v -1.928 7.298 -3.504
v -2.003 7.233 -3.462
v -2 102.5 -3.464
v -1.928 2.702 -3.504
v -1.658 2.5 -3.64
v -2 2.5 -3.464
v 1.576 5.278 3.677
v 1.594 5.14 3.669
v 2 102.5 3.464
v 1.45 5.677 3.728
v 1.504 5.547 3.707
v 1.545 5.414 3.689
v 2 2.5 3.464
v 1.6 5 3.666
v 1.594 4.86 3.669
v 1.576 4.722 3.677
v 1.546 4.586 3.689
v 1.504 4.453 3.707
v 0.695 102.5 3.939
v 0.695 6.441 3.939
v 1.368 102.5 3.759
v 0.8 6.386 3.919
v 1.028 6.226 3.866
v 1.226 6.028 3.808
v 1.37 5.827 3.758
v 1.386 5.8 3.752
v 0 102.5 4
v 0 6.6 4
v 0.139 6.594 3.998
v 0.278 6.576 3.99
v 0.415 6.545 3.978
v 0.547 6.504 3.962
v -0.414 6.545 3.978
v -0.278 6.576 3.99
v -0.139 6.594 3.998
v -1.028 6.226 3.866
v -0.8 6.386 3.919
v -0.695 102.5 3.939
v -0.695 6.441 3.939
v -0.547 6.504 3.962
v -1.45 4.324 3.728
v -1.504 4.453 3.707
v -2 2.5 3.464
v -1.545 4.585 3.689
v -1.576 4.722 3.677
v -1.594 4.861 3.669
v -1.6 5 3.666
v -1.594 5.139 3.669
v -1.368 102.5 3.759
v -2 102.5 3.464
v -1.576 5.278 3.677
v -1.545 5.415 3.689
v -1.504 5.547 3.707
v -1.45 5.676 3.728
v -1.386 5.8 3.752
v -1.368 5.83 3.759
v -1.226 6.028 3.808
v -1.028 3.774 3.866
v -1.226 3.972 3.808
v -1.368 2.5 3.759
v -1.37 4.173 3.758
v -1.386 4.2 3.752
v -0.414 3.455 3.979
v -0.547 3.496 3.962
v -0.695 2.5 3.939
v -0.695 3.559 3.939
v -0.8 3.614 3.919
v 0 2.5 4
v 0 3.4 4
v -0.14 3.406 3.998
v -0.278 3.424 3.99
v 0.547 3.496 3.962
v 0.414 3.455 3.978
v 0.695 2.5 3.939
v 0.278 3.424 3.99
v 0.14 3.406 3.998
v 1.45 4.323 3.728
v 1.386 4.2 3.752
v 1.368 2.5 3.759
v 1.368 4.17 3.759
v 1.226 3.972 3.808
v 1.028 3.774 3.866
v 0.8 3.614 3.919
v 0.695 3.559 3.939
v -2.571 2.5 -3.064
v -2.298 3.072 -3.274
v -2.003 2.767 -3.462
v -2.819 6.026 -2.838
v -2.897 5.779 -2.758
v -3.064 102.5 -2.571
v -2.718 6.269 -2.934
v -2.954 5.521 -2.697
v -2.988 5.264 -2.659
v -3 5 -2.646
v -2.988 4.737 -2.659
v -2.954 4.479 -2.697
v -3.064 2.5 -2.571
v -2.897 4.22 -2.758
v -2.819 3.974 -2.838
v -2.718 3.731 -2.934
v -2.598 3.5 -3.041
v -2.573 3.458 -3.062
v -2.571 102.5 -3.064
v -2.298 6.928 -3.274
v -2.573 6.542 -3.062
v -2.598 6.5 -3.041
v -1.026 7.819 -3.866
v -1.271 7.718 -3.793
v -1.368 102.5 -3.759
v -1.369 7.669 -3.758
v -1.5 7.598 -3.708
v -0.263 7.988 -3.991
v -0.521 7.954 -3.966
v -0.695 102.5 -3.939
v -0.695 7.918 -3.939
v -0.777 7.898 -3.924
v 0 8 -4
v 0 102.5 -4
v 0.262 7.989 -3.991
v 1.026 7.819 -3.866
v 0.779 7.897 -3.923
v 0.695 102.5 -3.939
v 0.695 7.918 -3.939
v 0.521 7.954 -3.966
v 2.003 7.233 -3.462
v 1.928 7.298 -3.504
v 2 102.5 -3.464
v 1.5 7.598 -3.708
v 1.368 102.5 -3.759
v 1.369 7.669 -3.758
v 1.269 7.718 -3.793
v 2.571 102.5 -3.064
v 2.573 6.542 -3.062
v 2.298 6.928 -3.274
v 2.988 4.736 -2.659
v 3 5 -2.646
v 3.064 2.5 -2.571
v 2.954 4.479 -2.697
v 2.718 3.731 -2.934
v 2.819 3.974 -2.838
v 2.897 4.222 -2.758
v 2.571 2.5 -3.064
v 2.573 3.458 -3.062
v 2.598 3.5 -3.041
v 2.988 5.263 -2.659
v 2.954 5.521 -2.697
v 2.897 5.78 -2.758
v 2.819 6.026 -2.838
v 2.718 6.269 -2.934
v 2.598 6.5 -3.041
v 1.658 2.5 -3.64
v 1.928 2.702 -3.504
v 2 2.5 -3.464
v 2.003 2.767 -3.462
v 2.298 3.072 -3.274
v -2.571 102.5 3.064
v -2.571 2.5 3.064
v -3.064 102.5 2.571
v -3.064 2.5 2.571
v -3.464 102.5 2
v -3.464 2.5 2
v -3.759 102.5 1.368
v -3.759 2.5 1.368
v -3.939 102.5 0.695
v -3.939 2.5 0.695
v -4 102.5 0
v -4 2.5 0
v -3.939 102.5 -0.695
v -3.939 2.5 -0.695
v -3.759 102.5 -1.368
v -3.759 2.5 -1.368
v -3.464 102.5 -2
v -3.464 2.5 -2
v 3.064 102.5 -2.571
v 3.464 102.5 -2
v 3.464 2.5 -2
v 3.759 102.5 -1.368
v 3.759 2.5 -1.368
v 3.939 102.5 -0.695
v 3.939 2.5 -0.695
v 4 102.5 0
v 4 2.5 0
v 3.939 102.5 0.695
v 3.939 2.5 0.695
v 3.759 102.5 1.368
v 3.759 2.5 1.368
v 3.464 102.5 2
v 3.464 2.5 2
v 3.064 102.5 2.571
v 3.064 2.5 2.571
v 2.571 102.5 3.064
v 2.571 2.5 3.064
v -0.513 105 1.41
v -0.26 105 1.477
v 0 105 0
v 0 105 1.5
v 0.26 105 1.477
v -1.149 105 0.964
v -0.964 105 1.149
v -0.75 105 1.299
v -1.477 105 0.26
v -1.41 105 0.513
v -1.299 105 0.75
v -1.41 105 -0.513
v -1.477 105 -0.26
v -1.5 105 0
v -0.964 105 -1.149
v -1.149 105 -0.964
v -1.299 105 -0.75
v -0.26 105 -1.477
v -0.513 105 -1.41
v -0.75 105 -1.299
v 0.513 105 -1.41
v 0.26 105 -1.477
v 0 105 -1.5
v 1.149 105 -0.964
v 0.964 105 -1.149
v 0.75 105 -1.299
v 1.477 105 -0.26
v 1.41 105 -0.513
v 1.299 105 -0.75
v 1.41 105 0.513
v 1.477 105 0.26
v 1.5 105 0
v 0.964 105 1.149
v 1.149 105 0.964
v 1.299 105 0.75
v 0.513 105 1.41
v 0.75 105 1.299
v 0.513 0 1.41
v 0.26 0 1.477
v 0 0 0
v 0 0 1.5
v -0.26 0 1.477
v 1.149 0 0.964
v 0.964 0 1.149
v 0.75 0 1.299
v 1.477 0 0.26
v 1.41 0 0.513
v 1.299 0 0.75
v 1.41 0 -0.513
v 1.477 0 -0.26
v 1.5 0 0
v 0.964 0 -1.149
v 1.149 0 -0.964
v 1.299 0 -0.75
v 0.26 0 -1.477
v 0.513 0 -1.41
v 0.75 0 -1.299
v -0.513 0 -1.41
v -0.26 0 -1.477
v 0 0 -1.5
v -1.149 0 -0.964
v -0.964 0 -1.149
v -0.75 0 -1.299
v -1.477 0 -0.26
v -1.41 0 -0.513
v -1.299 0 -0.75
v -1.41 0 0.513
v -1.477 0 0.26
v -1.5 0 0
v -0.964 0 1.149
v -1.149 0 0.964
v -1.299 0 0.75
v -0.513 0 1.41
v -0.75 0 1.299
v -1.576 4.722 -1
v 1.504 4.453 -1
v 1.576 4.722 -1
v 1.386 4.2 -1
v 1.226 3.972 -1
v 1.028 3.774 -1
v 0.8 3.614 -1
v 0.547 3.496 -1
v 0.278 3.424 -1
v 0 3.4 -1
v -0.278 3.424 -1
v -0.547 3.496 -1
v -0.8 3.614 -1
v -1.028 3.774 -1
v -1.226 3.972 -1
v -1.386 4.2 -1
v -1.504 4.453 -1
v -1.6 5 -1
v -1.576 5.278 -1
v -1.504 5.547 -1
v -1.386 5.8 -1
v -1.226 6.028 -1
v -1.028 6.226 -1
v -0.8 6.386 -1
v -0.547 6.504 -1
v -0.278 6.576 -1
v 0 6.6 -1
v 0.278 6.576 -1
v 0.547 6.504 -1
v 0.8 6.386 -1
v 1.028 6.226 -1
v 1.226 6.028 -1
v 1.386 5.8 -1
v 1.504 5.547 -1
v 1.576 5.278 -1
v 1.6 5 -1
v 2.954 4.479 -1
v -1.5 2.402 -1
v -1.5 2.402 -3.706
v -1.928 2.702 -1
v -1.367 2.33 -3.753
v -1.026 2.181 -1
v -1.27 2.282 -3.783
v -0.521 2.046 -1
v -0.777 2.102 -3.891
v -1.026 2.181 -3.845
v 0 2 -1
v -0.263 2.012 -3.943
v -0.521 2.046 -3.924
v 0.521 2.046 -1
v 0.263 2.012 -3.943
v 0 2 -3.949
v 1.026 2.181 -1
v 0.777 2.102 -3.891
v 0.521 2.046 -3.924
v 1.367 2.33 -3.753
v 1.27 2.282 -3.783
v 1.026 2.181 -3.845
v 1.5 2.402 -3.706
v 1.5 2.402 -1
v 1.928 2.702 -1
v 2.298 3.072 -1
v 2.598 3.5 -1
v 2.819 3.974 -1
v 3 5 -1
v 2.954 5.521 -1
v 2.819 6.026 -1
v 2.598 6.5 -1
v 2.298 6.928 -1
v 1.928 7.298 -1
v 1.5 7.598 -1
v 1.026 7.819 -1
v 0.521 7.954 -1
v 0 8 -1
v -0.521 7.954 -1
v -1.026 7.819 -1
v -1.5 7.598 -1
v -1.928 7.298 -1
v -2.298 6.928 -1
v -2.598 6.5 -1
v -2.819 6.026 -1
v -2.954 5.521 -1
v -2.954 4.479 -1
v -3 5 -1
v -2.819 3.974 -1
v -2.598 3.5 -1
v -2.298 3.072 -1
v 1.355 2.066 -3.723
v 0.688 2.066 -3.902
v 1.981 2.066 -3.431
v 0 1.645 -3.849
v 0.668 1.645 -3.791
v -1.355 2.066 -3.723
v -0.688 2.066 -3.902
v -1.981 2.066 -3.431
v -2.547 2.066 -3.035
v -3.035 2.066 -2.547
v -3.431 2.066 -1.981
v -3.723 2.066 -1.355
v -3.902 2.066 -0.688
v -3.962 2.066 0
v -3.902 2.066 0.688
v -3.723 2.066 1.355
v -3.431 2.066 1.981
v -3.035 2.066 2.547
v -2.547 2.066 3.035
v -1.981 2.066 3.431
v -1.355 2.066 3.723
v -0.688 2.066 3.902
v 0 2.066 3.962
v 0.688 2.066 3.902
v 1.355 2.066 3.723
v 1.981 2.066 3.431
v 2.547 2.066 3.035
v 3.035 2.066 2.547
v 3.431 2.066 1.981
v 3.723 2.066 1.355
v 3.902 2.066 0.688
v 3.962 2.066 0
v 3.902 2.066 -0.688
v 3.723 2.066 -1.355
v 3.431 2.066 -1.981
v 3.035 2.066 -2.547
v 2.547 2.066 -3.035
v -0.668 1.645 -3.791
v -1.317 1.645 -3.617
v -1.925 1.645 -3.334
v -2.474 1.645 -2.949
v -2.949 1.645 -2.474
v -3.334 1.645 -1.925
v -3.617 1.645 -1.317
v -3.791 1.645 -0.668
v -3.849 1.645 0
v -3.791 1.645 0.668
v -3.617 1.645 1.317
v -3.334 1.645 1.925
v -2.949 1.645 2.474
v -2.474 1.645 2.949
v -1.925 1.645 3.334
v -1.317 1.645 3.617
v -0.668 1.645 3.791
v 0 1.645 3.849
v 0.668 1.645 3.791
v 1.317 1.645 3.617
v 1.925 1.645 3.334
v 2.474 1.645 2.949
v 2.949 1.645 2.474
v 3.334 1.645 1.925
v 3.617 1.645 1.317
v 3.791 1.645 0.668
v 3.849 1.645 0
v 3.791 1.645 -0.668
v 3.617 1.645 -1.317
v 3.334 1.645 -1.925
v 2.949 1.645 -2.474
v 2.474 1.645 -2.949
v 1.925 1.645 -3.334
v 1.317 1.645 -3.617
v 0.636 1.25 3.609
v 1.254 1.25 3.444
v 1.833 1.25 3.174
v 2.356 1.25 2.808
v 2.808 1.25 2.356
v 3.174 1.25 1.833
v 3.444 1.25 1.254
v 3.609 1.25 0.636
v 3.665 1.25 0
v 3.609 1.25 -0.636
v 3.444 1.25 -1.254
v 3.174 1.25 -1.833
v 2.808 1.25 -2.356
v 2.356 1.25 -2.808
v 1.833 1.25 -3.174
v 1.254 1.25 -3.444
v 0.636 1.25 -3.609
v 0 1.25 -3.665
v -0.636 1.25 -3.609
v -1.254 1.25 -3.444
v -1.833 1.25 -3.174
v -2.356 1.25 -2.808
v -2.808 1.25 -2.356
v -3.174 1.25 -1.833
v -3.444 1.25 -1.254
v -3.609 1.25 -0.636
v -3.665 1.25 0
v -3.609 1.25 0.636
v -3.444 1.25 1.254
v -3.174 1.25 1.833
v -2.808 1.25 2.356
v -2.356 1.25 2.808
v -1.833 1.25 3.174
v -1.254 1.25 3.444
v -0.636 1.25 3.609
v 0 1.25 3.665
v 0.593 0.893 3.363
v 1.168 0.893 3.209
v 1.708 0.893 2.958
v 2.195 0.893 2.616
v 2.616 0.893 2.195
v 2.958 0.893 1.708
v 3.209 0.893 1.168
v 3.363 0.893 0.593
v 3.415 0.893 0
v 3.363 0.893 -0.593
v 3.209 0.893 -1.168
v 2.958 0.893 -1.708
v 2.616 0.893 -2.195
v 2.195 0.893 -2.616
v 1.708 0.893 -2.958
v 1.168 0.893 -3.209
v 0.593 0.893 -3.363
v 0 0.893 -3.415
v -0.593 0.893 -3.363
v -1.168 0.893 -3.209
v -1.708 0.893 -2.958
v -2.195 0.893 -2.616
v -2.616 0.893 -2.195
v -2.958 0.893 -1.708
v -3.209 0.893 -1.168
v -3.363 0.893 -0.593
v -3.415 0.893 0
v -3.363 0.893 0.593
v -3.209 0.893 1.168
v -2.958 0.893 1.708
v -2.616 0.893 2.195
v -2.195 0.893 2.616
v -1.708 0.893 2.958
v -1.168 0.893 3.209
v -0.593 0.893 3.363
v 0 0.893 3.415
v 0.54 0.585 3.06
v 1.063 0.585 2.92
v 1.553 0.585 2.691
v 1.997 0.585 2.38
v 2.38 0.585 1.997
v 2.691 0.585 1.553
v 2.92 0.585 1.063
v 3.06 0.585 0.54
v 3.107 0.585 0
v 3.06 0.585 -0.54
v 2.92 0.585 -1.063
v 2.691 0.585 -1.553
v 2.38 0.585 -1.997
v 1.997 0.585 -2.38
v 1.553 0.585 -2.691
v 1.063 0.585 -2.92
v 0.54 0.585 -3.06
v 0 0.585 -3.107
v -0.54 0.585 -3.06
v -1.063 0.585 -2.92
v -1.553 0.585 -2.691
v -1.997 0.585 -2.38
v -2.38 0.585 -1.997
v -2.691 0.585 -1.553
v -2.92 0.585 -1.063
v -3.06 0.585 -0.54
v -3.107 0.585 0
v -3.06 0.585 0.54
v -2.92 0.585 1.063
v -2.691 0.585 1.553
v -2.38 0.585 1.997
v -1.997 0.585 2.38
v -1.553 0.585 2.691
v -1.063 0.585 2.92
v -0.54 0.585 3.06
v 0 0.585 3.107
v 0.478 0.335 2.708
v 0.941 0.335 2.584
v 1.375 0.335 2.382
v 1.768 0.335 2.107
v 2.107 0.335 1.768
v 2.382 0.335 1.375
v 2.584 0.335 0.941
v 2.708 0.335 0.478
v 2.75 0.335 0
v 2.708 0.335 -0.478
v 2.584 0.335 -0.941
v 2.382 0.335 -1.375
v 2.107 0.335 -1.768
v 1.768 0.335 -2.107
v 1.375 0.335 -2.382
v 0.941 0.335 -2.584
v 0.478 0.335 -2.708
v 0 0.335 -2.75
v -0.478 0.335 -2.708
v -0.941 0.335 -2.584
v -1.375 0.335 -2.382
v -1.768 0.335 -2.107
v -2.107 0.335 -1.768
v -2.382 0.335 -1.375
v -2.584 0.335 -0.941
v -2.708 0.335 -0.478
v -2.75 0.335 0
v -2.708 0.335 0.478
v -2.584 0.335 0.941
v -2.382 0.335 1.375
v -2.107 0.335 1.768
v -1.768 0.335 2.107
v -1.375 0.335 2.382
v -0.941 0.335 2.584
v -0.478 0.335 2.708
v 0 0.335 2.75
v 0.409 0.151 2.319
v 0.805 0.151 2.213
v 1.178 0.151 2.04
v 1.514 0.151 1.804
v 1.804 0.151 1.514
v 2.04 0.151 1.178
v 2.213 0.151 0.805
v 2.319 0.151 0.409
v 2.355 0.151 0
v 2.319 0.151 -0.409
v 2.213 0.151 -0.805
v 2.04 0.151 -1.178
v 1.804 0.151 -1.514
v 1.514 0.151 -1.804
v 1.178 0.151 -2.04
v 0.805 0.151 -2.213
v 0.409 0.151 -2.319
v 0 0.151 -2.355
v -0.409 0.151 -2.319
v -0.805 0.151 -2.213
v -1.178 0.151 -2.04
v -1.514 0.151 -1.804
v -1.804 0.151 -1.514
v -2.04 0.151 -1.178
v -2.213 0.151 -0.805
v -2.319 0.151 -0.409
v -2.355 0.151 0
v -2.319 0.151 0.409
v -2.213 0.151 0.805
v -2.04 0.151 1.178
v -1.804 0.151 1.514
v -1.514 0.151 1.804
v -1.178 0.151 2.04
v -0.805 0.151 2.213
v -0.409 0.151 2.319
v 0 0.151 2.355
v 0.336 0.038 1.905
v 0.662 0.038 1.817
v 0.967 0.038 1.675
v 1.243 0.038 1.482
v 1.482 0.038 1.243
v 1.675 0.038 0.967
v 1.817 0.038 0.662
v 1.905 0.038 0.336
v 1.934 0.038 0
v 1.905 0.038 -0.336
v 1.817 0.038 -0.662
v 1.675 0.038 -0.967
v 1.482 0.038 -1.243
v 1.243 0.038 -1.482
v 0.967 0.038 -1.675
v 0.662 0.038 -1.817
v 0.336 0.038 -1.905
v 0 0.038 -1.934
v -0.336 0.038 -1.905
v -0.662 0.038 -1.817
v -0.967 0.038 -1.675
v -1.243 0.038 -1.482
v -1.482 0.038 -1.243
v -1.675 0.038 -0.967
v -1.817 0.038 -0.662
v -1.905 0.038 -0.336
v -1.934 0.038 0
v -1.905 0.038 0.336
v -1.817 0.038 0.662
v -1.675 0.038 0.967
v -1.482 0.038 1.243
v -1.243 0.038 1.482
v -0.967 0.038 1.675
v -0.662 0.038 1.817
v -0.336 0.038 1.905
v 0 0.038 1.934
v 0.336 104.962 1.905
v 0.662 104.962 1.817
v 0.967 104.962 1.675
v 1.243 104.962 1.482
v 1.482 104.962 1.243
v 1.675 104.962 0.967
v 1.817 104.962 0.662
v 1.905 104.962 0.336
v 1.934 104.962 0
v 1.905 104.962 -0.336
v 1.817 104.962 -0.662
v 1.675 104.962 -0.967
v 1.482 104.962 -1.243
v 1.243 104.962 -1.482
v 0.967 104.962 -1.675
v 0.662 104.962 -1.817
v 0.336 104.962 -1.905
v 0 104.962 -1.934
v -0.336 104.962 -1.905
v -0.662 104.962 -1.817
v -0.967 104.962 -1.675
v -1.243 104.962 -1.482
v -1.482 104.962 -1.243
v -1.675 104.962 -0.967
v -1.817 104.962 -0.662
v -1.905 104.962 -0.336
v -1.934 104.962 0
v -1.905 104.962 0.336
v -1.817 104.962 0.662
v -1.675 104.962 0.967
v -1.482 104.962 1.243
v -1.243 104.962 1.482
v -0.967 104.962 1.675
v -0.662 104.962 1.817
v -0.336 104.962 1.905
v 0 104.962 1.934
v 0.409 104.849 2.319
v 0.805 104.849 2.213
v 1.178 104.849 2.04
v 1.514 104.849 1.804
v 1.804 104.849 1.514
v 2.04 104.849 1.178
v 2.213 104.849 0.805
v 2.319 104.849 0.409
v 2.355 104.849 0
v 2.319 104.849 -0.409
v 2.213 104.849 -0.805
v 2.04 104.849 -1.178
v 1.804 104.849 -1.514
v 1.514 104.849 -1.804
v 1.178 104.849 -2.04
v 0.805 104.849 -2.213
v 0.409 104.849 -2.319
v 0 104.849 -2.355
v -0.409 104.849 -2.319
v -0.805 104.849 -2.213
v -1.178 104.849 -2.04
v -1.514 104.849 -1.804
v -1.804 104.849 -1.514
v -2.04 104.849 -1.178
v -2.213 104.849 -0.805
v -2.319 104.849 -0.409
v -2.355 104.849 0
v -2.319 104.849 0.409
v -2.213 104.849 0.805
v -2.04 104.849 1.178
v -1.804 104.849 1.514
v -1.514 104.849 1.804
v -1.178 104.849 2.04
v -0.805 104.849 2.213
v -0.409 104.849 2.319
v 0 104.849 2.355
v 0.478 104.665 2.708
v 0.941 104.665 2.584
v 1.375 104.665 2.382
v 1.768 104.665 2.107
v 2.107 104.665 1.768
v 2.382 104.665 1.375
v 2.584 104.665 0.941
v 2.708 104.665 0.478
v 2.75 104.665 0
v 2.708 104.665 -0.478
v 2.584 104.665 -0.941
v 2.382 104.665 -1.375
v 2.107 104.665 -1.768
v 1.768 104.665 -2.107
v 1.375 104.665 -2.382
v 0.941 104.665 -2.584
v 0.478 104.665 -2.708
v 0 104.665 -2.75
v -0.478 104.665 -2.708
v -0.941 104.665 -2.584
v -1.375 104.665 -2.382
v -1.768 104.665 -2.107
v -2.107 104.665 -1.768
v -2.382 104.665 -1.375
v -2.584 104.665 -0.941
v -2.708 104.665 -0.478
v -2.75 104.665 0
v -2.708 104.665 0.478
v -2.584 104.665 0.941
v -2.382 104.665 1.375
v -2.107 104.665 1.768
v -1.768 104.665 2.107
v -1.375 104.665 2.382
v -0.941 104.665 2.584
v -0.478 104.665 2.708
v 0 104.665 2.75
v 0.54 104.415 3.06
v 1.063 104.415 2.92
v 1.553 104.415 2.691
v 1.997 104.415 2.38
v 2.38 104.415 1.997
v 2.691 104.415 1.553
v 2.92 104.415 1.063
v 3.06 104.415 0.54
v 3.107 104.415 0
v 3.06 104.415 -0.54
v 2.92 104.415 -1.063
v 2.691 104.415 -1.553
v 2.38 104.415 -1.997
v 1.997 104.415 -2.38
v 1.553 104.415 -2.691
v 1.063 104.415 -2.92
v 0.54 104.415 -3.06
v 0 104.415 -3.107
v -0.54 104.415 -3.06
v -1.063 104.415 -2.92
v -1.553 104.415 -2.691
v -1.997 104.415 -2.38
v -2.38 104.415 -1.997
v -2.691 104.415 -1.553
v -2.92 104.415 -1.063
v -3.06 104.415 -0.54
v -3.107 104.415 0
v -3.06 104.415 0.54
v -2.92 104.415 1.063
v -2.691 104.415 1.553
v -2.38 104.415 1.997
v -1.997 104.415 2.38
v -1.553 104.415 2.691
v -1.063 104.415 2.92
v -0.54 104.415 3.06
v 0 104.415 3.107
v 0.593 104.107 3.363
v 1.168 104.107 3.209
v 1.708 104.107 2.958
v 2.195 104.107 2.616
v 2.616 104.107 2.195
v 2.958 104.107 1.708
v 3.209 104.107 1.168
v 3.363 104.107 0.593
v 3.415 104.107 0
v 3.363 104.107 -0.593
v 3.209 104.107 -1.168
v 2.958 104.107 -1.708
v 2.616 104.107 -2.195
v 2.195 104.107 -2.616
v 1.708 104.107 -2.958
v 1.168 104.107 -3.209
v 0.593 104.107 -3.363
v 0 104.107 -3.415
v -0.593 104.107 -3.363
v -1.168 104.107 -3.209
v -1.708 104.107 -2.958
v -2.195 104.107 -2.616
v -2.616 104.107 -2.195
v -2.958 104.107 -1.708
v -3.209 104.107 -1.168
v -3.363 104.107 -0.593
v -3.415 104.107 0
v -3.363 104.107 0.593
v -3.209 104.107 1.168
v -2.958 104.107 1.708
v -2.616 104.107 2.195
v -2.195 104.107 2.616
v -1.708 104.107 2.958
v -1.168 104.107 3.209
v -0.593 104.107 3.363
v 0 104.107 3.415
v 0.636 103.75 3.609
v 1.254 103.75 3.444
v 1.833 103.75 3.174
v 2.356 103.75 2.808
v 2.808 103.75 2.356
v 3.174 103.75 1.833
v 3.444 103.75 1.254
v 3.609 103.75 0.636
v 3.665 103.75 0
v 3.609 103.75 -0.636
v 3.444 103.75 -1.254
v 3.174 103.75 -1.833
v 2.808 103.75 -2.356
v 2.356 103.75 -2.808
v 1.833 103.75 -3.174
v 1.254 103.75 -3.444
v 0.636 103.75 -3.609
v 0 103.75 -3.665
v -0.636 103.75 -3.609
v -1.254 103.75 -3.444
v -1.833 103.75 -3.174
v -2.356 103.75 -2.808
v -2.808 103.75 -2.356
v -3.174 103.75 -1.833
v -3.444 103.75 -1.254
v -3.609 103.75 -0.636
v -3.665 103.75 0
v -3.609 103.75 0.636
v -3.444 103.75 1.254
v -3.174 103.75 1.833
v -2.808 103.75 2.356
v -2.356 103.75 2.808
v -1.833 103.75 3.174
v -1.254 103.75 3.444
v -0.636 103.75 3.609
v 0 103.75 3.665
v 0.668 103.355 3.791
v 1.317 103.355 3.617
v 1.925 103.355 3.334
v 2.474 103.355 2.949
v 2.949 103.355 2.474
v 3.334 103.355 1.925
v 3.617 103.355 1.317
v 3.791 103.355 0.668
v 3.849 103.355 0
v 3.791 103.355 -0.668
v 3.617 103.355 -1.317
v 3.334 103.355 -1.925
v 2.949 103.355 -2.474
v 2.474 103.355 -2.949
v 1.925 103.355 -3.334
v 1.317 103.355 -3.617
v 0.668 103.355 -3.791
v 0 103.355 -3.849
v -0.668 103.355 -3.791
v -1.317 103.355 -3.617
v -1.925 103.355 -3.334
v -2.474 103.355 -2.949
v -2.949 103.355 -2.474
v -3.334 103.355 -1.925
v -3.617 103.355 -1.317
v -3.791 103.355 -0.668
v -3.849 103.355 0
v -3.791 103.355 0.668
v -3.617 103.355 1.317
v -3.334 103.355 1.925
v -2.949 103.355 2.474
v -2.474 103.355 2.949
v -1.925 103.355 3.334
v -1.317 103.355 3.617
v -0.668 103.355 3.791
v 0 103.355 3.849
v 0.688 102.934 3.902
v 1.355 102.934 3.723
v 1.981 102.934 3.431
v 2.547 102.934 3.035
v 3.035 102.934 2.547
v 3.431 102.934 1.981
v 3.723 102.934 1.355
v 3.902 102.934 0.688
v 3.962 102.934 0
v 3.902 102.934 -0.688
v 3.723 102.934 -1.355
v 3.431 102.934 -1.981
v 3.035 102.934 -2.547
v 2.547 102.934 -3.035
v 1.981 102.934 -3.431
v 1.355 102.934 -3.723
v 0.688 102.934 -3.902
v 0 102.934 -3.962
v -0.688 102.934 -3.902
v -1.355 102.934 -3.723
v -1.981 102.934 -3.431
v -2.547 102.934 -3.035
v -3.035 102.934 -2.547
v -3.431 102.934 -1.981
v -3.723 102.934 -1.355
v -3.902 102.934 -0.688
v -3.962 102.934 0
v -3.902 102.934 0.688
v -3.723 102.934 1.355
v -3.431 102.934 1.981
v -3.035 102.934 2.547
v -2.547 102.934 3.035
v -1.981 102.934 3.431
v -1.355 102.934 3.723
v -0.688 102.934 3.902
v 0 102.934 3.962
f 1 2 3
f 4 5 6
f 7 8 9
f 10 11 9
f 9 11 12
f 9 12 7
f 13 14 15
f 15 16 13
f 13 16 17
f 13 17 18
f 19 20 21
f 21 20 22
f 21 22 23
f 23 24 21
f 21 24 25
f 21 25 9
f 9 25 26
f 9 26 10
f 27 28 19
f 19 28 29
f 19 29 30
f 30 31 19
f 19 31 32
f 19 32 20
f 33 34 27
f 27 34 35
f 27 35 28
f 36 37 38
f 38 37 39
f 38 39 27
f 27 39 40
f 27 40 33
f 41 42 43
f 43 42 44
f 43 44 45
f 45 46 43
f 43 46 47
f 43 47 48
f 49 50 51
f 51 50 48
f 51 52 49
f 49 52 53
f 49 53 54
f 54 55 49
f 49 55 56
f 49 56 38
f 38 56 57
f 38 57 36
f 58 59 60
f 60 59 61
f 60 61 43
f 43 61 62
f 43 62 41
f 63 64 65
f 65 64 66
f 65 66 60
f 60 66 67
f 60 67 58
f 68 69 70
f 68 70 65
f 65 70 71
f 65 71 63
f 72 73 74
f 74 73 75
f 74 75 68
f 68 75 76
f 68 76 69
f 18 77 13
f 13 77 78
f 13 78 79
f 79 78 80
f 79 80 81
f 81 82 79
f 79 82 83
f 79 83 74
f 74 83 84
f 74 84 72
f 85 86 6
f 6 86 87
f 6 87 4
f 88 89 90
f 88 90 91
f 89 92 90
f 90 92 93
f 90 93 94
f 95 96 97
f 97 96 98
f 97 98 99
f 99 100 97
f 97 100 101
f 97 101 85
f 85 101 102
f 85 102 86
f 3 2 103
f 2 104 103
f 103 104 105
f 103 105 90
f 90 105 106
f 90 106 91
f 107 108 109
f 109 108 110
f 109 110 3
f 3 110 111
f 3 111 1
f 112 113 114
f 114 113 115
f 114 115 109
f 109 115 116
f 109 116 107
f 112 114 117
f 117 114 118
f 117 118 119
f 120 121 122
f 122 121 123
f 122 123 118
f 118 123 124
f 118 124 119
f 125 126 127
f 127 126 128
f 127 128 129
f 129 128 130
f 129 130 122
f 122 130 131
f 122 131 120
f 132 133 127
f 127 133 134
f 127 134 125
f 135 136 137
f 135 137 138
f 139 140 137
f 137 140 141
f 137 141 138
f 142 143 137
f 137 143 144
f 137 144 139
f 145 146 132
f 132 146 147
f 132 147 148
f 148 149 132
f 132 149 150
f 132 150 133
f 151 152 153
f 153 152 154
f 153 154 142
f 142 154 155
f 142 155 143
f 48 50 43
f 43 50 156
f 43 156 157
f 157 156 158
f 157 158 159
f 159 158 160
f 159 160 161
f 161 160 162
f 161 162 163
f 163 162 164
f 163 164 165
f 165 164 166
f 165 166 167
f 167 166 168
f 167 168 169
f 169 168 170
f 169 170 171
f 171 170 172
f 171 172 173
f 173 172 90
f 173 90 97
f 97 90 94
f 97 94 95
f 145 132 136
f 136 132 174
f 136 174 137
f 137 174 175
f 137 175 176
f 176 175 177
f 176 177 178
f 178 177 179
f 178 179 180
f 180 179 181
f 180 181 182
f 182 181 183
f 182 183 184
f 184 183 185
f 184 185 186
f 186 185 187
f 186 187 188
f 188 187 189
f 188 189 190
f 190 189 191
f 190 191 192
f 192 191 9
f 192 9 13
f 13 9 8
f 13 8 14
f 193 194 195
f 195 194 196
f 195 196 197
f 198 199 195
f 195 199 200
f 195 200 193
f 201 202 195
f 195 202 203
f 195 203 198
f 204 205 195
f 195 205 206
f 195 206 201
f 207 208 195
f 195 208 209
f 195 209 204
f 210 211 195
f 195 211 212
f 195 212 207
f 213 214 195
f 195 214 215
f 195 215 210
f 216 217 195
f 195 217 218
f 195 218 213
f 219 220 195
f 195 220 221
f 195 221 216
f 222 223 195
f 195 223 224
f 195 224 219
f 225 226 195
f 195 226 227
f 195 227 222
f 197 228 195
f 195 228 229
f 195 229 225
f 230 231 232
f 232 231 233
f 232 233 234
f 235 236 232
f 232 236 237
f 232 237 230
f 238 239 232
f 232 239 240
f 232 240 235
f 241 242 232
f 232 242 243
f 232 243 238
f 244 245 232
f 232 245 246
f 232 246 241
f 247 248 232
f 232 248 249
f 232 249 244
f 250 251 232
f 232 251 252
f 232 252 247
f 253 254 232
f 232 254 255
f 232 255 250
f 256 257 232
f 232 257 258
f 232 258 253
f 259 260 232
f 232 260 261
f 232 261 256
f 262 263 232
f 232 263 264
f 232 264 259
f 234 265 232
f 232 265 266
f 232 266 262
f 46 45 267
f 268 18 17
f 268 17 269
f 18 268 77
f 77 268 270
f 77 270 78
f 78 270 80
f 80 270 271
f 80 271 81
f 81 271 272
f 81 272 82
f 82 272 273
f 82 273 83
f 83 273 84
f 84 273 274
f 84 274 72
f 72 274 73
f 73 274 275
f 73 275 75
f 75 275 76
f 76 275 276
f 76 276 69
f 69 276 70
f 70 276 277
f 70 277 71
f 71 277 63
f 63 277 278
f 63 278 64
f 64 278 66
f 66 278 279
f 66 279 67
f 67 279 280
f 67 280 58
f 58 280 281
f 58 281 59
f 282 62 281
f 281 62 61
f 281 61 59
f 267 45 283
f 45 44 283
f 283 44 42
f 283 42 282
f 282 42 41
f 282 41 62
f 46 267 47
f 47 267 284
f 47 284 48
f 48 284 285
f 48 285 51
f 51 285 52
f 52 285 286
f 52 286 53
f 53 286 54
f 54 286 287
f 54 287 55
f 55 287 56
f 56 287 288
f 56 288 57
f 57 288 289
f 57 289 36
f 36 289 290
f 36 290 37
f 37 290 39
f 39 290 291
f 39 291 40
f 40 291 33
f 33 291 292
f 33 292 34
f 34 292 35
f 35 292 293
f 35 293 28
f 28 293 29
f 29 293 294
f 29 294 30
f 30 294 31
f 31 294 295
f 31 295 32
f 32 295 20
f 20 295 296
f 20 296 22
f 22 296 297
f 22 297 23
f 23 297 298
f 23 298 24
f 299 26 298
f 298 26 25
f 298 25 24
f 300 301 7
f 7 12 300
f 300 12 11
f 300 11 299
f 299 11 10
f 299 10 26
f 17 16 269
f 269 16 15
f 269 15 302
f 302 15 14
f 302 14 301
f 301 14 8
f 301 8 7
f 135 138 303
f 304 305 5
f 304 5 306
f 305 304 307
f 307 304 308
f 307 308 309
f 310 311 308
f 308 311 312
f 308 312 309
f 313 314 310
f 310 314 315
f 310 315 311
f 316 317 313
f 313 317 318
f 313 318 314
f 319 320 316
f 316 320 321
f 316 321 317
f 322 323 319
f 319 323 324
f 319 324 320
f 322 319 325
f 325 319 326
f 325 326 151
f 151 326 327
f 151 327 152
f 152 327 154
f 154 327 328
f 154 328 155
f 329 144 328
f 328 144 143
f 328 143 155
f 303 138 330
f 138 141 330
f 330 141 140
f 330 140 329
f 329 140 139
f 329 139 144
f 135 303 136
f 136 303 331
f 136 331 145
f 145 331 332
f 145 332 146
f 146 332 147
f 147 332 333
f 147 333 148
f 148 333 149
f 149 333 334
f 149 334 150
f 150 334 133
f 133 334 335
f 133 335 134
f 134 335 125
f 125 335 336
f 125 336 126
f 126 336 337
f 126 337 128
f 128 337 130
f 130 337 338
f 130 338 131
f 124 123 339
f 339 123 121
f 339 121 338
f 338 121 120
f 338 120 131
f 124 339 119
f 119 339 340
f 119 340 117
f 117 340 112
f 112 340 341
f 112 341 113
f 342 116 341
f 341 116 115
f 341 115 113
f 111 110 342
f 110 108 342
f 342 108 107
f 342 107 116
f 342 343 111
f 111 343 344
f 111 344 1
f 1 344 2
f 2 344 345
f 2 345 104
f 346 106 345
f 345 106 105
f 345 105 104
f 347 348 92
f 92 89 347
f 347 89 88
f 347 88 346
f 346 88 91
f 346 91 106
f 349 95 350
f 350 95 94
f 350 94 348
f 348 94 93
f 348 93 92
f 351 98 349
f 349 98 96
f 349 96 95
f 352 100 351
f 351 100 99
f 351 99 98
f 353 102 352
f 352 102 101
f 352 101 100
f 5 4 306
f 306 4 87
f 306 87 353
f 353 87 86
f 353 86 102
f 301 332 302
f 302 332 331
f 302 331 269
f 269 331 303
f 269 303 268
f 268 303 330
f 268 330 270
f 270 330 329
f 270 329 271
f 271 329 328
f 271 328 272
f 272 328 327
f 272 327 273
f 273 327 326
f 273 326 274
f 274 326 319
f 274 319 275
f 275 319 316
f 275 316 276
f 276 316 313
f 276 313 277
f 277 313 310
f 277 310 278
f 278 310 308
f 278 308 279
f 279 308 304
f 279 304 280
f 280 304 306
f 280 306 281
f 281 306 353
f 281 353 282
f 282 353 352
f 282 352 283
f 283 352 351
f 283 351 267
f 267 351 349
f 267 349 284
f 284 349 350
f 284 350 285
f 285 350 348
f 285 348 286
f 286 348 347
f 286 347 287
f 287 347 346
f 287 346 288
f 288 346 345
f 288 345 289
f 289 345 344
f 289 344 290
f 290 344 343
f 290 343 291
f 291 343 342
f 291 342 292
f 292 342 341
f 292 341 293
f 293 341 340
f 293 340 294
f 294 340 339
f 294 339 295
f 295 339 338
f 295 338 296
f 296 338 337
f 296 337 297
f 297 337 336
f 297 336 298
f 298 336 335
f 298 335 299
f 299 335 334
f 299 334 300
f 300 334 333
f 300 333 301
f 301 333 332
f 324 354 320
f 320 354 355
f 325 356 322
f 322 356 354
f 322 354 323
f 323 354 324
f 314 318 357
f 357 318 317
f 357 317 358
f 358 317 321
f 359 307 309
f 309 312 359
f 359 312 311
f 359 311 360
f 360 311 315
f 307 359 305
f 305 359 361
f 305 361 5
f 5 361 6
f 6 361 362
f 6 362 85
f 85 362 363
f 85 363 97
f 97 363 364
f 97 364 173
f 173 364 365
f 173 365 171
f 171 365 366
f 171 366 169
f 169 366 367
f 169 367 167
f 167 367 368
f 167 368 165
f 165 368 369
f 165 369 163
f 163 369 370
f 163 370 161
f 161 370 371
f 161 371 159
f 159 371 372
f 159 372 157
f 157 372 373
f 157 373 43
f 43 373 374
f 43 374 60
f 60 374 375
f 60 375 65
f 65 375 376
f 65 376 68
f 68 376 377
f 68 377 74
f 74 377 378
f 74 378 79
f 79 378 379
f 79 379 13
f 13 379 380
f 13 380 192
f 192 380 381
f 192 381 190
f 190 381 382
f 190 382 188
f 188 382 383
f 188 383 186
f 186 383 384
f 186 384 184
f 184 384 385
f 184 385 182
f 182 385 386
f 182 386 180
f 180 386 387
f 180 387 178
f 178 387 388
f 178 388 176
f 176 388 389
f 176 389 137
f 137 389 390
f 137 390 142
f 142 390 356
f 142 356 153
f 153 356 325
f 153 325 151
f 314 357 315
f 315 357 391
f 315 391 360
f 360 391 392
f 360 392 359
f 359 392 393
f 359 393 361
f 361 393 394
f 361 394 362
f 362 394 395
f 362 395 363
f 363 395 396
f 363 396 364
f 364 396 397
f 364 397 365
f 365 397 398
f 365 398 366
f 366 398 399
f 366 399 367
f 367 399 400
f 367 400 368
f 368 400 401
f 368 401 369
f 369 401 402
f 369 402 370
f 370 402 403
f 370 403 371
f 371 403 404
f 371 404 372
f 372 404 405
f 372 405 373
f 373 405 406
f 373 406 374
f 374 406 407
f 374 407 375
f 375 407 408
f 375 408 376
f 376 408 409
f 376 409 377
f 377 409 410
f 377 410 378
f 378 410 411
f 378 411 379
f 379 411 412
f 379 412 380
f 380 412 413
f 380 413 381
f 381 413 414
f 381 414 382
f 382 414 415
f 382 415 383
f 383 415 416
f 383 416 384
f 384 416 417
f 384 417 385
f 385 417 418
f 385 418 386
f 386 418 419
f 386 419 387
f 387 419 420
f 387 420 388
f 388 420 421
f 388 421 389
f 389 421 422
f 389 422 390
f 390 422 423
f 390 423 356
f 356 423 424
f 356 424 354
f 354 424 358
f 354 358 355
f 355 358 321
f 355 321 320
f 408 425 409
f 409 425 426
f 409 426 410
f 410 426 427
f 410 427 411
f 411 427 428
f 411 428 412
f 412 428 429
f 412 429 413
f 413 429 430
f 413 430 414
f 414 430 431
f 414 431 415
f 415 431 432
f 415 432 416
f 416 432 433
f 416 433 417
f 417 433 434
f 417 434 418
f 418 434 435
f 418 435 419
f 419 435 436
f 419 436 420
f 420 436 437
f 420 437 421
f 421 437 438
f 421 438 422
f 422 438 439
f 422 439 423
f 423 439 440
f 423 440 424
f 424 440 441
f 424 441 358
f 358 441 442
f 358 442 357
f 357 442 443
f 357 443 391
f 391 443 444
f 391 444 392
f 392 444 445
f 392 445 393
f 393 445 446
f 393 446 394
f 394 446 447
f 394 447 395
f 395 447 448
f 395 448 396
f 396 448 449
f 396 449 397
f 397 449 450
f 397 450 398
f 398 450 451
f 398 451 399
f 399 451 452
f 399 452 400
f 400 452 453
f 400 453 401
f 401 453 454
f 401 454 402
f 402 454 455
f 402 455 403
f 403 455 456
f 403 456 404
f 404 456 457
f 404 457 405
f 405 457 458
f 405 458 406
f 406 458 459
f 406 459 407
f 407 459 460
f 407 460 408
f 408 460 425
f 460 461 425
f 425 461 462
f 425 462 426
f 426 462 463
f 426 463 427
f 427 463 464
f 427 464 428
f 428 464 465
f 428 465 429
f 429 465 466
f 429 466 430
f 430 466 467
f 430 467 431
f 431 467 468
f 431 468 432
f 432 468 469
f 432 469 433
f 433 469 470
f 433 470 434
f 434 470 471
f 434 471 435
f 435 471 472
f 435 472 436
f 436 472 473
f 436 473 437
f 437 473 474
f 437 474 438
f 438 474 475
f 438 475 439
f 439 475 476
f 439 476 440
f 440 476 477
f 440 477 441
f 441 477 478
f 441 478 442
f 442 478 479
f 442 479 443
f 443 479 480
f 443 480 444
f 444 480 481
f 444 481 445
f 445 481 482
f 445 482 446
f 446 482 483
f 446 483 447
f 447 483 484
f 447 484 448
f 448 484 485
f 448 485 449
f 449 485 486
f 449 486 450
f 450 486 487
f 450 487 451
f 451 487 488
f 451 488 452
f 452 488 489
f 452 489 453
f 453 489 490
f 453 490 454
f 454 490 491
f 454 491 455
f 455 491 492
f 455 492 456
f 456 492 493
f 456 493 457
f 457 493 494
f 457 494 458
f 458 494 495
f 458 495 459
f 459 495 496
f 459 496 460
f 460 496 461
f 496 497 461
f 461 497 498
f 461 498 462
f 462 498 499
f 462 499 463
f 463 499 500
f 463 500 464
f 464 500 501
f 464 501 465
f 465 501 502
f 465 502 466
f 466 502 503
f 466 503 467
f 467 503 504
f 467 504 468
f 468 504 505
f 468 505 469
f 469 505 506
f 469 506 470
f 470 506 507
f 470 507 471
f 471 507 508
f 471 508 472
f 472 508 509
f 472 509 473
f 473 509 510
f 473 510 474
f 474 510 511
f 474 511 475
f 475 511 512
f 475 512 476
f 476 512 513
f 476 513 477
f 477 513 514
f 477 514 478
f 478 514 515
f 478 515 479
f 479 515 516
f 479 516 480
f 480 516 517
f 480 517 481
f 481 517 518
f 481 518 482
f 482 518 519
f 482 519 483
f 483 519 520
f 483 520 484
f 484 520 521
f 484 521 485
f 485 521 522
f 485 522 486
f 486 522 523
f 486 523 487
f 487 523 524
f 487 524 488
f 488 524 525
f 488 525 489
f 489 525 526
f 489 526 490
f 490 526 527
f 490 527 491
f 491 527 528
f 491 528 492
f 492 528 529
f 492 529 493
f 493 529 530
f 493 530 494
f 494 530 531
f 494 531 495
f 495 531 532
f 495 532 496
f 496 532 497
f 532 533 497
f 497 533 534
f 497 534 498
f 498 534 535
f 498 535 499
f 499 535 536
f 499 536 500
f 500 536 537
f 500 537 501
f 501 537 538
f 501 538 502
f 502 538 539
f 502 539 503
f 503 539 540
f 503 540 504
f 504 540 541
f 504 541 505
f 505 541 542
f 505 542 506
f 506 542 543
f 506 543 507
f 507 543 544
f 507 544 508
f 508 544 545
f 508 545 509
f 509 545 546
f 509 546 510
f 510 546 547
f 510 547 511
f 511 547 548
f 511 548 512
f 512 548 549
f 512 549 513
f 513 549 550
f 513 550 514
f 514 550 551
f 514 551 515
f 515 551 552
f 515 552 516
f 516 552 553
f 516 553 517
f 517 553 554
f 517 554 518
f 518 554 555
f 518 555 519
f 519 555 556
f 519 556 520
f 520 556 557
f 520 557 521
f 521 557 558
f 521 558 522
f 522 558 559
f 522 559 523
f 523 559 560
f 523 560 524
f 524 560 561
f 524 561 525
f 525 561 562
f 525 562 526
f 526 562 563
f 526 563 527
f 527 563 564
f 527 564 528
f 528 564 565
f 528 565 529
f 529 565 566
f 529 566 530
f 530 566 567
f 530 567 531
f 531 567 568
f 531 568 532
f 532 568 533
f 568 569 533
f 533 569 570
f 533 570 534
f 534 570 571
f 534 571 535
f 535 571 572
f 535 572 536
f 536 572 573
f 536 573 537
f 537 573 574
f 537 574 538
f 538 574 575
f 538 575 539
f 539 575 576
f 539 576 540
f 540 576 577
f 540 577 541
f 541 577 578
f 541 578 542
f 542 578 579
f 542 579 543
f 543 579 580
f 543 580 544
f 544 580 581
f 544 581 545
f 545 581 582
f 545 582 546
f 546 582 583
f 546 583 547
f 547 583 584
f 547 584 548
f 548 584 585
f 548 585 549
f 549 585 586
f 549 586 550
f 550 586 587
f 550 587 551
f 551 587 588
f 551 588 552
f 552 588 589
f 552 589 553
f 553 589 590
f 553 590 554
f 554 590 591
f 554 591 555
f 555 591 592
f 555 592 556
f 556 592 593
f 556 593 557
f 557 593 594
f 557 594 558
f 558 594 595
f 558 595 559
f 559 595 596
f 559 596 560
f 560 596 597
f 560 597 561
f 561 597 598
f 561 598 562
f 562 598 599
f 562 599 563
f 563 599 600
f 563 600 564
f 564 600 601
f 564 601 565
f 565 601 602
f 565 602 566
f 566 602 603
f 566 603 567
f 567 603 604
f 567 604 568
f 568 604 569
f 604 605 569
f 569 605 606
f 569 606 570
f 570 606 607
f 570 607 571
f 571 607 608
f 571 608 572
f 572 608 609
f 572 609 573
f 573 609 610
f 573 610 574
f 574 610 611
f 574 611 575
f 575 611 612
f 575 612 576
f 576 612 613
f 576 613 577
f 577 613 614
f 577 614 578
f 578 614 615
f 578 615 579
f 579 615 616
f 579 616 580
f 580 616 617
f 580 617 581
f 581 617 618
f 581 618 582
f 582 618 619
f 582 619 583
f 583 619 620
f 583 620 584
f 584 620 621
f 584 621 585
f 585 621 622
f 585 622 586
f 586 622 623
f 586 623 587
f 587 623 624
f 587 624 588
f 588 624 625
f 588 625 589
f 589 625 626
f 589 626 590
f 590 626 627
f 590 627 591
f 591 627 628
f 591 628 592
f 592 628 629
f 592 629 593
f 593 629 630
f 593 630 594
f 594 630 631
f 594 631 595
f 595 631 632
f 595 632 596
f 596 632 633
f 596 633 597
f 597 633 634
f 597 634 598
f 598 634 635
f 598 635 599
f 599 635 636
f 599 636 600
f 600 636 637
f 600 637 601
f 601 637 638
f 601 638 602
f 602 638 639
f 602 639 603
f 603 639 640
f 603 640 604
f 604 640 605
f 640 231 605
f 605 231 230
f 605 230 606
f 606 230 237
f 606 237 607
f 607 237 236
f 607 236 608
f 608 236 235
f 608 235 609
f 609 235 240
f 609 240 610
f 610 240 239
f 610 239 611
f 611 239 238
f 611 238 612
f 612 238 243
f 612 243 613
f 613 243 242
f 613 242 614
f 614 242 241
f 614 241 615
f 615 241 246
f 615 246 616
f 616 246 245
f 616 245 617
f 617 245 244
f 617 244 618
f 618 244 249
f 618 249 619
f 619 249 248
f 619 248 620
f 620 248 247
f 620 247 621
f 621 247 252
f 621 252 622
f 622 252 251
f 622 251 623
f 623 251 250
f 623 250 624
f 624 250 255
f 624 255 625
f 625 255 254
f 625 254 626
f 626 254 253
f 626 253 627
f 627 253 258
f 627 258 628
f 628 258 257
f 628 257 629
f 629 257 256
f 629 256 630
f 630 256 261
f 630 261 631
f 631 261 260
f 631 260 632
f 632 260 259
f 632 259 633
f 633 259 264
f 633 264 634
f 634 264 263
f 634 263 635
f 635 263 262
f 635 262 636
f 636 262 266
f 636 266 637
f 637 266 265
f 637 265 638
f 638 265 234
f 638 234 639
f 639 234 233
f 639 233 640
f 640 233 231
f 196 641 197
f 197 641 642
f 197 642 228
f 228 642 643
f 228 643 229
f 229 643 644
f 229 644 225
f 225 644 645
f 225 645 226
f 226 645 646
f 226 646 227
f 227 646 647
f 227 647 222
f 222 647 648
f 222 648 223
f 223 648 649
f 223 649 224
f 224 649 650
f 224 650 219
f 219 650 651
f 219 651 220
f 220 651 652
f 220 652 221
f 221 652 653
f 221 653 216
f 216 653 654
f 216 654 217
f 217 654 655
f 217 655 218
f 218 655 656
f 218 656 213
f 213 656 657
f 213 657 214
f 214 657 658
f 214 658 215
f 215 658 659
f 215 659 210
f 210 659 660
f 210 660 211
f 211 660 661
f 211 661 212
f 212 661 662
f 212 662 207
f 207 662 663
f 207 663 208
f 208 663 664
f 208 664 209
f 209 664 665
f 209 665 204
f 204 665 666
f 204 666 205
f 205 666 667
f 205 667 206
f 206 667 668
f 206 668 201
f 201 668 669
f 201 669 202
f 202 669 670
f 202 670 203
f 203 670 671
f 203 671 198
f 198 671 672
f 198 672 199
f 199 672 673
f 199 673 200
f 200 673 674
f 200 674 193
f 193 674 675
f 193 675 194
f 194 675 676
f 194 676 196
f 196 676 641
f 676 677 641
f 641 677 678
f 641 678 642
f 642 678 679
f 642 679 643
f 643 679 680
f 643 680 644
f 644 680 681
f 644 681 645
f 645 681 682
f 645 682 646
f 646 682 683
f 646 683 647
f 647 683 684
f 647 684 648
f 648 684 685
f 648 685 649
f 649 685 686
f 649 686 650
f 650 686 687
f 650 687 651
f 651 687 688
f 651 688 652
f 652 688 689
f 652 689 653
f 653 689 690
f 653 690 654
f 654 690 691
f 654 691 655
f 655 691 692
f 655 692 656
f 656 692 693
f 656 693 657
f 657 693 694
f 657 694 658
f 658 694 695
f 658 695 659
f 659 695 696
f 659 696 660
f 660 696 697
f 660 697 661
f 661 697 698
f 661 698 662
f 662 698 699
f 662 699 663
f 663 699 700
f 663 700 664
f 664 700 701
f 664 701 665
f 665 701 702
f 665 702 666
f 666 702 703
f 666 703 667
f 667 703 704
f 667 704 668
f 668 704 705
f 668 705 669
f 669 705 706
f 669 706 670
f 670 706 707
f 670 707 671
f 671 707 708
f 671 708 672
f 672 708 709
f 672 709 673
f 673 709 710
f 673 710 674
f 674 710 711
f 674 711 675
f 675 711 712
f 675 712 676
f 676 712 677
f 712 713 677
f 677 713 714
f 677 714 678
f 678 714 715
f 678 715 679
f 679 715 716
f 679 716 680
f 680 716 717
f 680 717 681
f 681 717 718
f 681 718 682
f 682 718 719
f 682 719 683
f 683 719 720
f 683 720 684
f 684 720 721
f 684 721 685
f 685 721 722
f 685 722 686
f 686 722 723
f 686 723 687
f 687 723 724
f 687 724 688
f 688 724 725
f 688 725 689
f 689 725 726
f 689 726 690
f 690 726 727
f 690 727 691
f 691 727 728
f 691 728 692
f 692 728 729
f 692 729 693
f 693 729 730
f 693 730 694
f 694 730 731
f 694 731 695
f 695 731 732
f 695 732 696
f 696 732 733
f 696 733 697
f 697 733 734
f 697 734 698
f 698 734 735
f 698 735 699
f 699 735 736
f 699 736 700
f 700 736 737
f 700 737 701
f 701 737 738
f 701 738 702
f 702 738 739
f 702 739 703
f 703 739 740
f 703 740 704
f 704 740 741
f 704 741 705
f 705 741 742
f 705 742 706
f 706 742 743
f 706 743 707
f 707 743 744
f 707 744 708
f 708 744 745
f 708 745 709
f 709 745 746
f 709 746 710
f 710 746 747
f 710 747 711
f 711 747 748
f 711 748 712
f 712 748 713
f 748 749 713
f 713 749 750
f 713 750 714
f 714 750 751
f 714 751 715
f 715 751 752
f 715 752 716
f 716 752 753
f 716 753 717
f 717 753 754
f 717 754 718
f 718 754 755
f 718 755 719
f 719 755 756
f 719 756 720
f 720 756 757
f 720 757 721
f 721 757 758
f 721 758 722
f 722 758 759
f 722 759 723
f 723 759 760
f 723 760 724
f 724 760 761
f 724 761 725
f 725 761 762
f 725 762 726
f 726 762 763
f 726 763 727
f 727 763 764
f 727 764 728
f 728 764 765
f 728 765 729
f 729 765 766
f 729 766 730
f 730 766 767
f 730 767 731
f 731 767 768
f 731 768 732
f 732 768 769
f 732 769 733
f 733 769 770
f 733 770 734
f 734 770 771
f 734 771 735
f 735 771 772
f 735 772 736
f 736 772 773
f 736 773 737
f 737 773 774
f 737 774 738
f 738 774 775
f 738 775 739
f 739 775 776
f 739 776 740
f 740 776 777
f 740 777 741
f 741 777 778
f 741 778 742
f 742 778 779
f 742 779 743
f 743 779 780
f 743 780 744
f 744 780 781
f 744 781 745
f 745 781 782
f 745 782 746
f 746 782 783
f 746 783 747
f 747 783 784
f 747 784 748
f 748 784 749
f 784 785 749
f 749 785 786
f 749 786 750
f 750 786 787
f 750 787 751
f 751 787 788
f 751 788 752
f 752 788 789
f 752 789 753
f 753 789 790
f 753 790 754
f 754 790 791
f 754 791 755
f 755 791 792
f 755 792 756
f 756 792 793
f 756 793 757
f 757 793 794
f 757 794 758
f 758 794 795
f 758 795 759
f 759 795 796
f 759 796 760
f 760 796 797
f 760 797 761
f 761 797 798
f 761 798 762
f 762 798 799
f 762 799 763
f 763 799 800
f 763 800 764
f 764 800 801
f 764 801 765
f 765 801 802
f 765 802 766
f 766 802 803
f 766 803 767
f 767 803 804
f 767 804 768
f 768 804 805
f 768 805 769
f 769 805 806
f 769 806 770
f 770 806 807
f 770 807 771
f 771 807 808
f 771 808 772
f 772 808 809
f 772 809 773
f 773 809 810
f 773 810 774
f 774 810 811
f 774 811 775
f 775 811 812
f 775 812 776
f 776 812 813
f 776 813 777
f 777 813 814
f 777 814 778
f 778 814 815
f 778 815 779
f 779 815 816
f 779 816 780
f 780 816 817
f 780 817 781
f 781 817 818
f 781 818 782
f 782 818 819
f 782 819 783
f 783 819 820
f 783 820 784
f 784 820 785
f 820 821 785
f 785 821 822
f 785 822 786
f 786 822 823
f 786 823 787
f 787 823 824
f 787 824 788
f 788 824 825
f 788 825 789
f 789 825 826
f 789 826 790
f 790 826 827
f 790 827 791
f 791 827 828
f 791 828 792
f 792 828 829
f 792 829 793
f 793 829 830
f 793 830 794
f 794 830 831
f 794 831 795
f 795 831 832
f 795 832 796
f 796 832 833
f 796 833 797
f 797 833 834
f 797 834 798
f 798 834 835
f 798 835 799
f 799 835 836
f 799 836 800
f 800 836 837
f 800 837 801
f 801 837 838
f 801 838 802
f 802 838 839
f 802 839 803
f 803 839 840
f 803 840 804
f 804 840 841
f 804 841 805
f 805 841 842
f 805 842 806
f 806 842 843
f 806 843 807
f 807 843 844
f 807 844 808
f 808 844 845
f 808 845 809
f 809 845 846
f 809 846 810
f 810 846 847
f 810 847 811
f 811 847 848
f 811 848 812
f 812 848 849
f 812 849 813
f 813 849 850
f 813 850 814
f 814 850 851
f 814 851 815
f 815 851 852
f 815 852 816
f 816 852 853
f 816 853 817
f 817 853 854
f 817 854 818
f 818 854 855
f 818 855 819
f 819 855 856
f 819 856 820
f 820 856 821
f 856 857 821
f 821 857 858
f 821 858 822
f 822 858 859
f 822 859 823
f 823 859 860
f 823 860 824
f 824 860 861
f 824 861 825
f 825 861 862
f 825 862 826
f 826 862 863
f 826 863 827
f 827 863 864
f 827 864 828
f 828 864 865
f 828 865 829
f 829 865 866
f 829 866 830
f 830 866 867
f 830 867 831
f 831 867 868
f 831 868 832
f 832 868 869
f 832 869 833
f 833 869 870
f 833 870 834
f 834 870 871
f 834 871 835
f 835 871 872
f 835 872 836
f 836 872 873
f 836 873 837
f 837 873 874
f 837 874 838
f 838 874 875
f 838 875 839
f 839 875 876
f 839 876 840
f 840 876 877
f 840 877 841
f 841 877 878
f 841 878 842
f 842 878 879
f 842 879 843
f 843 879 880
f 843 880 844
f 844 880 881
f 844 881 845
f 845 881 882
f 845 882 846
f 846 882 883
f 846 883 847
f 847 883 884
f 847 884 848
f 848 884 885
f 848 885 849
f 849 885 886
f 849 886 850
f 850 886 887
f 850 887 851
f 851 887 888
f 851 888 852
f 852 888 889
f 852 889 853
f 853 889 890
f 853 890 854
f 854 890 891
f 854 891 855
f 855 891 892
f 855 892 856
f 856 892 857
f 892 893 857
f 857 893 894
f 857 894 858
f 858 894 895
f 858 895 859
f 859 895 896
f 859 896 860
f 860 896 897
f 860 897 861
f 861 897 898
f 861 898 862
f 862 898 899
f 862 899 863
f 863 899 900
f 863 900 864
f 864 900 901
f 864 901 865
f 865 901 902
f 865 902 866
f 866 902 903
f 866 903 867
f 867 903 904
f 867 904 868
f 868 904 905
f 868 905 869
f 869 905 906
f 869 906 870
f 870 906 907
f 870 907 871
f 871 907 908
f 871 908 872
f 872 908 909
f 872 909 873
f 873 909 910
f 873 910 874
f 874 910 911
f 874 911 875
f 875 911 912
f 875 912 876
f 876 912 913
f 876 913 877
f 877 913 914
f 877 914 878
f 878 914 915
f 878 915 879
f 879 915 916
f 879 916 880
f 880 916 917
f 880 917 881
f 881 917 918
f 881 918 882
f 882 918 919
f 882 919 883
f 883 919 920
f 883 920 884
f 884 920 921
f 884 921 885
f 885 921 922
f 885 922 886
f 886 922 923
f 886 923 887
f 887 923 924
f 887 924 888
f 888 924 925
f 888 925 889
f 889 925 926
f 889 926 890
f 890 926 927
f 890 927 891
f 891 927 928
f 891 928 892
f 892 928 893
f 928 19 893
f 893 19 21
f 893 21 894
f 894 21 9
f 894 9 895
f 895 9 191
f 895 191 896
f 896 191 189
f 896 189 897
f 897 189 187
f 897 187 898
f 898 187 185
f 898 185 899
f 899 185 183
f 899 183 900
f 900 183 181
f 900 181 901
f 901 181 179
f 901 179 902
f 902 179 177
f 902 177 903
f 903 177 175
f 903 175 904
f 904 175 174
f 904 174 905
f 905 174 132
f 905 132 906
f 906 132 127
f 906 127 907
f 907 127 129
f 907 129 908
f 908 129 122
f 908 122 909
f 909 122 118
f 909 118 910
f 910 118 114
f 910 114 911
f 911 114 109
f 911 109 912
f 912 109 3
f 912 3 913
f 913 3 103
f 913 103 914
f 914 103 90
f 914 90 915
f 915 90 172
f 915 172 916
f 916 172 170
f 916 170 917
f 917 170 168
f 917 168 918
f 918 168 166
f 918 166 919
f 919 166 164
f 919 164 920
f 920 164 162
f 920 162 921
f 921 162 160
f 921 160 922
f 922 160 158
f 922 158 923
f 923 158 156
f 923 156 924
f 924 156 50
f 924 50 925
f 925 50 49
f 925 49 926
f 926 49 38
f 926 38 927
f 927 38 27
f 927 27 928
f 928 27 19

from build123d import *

# Parameters (mm, degrees)
SKETCH1_R               = 4
BOSS_EXTRUDE1_DEPTH     = 105
CUT_EXTRUDE1_DEPTH      = 106.152270541
CUT_EXTRUDE1_DEPTH_BACK = 106.152270541
SKETCH2_R               = 1.6
CUT_EXTRUDE2_REACH      = 108.152
CUT_EXTRUDE2_END_RADIUS = 4
CUT_EXTRUDE2_START      = -1
SKETCH3_R               = 3
FILLET1_R               = 2.5


with BuildPart() as part:
    # Sketch1 → Boss-Extrude1 (new body)
    with BuildSketch(Plane(origin=(0, 0, 0), x_dir=(1, 0, 0), z_dir=(0, 1, 0))):
        with Locations(Location((0, 0, 0), (0, 0, 270))):
            Circle(SKETCH1_R)
    extrude(amount=BOSS_EXTRUDE1_DEPTH)

    # Sketch2 → Cut-Extrude1 (cut, two sides: drawn at the far end of the back side and taken through both)
    with BuildSketch(Plane.XY.offset(-CUT_EXTRUDE1_DEPTH_BACK)):
        with Locations(Location((0, 5, 0), (0, 0, 89.999999999))):
            Circle(SKETCH2_R)
    extrude(amount=CUT_EXTRUDE1_DEPTH + CUT_EXTRUDE1_DEPTH_BACK, mode=Mode.SUBTRACT)

    # Cut-Extrude2: up to this cylinder (the profile starts inside it)
    cut_extrude2_end = Plane(origin=(0, 5, 0), z_dir=(0, -1, 0)) * Cylinder(CUT_EXTRUDE2_END_RADIUS, 225.304, mode=Mode.PRIVATE)
    # Sketch3 → Cut-Extrude2 (cut, up to the surface)
    with BuildSketch(Plane.XY.offset(CUT_EXTRUDE2_START), mode=Mode.PRIVATE) as cut_extrude2_sk1:
        with Locations((0, 5)):
            Circle(SKETCH3_R)
    cut_extrude2_tool1 = extrude(cut_extrude2_sk1.sketch, amount=-CUT_EXTRUDE2_REACH, mode=Mode.PRIVATE) & cut_extrude2_end
    add(cut_extrude2_tool1.solids().sort_by_distance((0, 5, -1))[0], mode=Mode.SUBTRACT)

    # Fillet1
    # the kernel refuses this fillet: 2.5 mm, written as the material it takes off along each edge
    with BuildSketch(Plane(origin=(0, 0, 0), x_dir=(0, 0, 1), z_dir=(-1, 0, 0))) as fillet1_piece_1:
        with BuildLine():
            CenterArc((4 - FILLET1_R, FILLET1_R), FILLET1_R, 270, 90)
            Line((4 - FILLET1_R, 0), (4, 0))
            Line((4, 0), (4, FILLET1_R))
        make_face()
    revolve(axis=Axis((0, 0, 0), (0, 1, 0)), mode=Mode.SUBTRACT)
    with BuildSketch(Plane(origin=(0, 105, 0), x_dir=(0, 0, 1), z_dir=(-1, 0, 0))) as fillet1_piece_2:
        with BuildLine():
            CenterArc((4 - FILLET1_R, -FILLET1_R), FILLET1_R, 0, 90)
            Line((4 - FILLET1_R, 0), (4, 0))
            Line((4, 0), (4, -FILLET1_R))
        make_face()
    revolve(axis=Axis((0, 105, 0), (0, 1, 0)), mode=Mode.SUBTRACT)


solid = part.part
